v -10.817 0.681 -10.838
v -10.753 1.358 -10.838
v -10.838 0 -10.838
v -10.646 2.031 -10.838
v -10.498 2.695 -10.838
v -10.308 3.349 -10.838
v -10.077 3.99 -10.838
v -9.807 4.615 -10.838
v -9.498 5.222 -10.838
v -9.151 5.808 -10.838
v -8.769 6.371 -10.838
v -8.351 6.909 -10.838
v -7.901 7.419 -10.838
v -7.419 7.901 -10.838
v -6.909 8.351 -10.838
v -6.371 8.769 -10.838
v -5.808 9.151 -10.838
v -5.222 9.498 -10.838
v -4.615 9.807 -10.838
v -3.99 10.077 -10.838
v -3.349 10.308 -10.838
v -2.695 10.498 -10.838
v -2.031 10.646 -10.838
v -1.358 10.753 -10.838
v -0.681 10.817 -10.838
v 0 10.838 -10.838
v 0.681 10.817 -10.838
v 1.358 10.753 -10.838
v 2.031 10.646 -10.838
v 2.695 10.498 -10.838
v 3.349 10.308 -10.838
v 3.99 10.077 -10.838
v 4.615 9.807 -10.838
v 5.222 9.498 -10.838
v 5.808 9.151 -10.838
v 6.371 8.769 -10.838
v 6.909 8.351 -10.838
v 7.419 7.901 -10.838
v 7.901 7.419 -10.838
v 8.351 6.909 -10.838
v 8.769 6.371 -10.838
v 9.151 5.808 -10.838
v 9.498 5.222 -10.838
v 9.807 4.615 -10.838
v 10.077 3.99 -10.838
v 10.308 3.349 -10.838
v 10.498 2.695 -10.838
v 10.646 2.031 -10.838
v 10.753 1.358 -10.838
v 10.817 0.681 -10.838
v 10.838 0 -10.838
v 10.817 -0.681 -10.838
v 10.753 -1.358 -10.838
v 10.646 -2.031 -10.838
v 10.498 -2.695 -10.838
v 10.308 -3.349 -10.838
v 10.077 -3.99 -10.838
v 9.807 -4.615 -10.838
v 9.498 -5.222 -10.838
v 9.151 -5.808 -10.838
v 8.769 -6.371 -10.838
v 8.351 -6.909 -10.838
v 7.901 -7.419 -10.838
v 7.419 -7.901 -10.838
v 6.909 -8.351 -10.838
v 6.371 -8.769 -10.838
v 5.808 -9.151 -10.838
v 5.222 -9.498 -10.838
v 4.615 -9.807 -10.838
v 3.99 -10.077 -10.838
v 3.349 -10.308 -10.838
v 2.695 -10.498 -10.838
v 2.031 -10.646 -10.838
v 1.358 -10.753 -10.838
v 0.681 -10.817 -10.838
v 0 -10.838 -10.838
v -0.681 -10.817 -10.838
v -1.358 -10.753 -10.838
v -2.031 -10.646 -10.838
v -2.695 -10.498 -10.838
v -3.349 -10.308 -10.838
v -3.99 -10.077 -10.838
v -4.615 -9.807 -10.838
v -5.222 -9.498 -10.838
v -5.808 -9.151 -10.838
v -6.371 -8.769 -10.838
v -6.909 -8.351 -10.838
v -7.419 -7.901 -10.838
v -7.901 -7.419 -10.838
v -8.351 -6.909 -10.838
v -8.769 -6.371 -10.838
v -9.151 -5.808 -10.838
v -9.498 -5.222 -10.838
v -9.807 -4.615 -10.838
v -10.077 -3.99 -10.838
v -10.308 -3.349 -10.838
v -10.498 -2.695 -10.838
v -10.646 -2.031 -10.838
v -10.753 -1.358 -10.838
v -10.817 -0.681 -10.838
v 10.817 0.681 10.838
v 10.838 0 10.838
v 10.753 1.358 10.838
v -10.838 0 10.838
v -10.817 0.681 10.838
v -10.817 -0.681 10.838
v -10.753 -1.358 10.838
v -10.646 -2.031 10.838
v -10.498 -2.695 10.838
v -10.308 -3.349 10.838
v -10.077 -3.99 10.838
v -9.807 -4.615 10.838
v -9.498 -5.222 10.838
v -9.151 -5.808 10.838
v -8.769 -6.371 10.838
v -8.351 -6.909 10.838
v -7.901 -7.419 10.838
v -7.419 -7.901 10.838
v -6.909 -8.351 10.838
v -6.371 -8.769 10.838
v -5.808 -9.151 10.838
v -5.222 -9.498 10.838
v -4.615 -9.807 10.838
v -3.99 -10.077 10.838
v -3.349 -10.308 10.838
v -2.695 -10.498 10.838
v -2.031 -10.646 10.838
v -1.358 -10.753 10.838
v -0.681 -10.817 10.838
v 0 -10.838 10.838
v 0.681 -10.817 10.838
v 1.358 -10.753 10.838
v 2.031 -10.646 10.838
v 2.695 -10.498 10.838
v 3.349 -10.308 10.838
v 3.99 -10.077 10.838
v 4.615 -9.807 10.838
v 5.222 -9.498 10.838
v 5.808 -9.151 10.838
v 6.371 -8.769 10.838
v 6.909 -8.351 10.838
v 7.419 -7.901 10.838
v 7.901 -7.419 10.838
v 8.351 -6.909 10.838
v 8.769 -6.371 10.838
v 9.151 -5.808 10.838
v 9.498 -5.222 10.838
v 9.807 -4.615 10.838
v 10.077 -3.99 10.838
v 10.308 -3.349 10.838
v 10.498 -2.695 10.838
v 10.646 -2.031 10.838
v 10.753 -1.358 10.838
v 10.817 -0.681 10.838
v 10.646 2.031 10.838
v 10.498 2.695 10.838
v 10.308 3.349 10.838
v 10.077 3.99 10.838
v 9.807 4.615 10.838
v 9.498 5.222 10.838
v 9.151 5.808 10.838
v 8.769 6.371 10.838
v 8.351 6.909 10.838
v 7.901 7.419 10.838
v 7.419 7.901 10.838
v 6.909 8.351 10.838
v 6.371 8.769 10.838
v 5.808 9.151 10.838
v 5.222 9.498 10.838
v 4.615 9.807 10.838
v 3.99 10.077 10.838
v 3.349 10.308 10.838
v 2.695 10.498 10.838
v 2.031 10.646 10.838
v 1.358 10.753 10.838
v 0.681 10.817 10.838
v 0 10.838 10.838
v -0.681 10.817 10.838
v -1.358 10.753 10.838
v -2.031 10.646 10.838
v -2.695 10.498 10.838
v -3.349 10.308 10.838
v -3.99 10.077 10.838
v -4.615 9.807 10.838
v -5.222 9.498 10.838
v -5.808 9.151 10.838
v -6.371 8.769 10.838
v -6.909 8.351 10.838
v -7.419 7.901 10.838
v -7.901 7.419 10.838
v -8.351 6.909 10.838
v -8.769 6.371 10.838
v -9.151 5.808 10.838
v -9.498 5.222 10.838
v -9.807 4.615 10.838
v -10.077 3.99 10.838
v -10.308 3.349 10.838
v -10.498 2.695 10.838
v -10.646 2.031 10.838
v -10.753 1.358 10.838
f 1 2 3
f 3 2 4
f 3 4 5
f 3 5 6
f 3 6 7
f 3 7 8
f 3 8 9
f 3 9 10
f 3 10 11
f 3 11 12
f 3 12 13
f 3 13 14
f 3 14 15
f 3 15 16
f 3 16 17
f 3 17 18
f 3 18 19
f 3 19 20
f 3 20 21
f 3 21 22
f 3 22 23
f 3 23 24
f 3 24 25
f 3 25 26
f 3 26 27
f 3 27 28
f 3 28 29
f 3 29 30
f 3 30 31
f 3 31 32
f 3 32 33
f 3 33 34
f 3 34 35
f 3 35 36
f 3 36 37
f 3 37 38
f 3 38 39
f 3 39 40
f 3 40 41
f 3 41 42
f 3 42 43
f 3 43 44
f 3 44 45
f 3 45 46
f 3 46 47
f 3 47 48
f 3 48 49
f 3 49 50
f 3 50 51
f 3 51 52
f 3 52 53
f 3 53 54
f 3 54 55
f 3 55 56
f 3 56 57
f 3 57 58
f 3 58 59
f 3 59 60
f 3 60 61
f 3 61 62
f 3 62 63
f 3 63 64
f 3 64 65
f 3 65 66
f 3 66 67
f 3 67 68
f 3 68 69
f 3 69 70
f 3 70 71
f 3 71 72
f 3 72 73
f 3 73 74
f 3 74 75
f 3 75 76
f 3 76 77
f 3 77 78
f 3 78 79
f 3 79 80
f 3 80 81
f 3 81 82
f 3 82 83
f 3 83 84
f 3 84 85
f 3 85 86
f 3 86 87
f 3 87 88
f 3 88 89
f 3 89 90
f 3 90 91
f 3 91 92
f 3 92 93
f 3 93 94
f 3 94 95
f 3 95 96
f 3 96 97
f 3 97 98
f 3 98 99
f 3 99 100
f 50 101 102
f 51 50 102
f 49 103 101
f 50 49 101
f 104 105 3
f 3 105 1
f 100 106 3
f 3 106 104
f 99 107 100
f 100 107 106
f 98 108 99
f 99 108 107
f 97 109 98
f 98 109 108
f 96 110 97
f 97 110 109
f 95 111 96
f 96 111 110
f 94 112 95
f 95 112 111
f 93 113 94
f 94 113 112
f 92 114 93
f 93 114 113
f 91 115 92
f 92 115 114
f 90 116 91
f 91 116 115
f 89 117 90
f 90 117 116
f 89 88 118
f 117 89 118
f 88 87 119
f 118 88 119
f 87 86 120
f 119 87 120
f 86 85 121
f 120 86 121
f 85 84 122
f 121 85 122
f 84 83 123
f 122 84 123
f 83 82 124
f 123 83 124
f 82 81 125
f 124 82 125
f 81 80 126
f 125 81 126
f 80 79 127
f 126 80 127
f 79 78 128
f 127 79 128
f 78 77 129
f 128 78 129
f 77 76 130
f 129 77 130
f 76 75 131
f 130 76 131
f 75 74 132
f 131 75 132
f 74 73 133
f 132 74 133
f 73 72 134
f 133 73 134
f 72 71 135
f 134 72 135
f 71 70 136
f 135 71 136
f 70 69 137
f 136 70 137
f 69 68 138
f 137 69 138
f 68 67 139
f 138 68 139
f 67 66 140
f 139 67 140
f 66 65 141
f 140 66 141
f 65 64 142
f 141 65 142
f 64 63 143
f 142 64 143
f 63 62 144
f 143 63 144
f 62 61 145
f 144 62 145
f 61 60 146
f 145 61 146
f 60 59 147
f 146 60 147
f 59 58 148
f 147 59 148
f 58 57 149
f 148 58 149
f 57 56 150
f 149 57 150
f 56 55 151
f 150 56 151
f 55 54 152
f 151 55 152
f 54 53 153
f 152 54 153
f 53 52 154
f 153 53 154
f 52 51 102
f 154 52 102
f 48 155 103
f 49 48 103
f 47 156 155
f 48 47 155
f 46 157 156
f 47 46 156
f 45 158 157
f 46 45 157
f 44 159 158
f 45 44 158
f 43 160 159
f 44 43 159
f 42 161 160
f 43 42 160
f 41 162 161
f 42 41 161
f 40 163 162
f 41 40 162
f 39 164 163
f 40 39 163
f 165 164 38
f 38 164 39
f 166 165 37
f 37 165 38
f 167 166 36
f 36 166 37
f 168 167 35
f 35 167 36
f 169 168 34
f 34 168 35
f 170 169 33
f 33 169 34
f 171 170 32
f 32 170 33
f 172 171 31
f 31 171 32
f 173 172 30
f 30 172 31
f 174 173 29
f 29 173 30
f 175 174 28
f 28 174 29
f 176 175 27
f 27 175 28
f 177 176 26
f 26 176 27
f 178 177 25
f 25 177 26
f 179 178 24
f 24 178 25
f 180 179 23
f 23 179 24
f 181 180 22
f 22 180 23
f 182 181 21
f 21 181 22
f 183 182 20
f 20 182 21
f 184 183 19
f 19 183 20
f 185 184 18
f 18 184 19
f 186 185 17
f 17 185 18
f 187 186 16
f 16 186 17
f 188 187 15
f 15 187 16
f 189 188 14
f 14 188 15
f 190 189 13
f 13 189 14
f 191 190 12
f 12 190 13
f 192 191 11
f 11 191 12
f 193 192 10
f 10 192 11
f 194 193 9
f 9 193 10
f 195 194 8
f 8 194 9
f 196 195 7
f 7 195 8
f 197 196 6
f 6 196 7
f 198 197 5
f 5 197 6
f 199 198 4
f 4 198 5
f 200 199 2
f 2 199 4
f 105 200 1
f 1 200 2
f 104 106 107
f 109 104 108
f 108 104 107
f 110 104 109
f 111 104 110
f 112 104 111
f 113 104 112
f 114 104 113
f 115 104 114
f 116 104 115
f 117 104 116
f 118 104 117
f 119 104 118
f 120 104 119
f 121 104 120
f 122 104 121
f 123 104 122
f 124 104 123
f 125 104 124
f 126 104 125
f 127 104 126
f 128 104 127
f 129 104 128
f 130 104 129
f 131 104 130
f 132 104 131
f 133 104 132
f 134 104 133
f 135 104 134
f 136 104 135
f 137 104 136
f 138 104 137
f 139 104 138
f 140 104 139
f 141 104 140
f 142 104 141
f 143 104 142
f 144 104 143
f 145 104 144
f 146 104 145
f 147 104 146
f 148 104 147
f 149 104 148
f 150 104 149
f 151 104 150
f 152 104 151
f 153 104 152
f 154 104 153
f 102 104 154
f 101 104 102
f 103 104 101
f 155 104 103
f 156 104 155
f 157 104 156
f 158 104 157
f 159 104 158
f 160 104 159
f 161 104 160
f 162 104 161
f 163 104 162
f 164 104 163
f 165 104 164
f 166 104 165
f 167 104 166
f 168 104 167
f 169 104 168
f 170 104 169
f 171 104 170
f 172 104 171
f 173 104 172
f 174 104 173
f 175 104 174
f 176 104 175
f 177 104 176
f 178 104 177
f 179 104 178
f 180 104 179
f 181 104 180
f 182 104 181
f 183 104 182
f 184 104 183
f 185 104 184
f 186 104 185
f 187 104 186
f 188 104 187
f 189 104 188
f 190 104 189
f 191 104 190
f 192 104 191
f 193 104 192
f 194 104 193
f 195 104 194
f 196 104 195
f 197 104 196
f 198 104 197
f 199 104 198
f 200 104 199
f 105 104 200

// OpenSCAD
$fn=100;

volume=8000.0;

height_to_base_ratio = 1;

r=pow(volume / PI / height_to_base_ratio / 2, 1/3.0);
h=height_to_base_ratio * r * 2;
v=PI*pow(r,2)*h;
echo("height=", h);
echo("2*r=", 2*r);
echo("v=", v);
cylinder(h, r, r, center = true);
